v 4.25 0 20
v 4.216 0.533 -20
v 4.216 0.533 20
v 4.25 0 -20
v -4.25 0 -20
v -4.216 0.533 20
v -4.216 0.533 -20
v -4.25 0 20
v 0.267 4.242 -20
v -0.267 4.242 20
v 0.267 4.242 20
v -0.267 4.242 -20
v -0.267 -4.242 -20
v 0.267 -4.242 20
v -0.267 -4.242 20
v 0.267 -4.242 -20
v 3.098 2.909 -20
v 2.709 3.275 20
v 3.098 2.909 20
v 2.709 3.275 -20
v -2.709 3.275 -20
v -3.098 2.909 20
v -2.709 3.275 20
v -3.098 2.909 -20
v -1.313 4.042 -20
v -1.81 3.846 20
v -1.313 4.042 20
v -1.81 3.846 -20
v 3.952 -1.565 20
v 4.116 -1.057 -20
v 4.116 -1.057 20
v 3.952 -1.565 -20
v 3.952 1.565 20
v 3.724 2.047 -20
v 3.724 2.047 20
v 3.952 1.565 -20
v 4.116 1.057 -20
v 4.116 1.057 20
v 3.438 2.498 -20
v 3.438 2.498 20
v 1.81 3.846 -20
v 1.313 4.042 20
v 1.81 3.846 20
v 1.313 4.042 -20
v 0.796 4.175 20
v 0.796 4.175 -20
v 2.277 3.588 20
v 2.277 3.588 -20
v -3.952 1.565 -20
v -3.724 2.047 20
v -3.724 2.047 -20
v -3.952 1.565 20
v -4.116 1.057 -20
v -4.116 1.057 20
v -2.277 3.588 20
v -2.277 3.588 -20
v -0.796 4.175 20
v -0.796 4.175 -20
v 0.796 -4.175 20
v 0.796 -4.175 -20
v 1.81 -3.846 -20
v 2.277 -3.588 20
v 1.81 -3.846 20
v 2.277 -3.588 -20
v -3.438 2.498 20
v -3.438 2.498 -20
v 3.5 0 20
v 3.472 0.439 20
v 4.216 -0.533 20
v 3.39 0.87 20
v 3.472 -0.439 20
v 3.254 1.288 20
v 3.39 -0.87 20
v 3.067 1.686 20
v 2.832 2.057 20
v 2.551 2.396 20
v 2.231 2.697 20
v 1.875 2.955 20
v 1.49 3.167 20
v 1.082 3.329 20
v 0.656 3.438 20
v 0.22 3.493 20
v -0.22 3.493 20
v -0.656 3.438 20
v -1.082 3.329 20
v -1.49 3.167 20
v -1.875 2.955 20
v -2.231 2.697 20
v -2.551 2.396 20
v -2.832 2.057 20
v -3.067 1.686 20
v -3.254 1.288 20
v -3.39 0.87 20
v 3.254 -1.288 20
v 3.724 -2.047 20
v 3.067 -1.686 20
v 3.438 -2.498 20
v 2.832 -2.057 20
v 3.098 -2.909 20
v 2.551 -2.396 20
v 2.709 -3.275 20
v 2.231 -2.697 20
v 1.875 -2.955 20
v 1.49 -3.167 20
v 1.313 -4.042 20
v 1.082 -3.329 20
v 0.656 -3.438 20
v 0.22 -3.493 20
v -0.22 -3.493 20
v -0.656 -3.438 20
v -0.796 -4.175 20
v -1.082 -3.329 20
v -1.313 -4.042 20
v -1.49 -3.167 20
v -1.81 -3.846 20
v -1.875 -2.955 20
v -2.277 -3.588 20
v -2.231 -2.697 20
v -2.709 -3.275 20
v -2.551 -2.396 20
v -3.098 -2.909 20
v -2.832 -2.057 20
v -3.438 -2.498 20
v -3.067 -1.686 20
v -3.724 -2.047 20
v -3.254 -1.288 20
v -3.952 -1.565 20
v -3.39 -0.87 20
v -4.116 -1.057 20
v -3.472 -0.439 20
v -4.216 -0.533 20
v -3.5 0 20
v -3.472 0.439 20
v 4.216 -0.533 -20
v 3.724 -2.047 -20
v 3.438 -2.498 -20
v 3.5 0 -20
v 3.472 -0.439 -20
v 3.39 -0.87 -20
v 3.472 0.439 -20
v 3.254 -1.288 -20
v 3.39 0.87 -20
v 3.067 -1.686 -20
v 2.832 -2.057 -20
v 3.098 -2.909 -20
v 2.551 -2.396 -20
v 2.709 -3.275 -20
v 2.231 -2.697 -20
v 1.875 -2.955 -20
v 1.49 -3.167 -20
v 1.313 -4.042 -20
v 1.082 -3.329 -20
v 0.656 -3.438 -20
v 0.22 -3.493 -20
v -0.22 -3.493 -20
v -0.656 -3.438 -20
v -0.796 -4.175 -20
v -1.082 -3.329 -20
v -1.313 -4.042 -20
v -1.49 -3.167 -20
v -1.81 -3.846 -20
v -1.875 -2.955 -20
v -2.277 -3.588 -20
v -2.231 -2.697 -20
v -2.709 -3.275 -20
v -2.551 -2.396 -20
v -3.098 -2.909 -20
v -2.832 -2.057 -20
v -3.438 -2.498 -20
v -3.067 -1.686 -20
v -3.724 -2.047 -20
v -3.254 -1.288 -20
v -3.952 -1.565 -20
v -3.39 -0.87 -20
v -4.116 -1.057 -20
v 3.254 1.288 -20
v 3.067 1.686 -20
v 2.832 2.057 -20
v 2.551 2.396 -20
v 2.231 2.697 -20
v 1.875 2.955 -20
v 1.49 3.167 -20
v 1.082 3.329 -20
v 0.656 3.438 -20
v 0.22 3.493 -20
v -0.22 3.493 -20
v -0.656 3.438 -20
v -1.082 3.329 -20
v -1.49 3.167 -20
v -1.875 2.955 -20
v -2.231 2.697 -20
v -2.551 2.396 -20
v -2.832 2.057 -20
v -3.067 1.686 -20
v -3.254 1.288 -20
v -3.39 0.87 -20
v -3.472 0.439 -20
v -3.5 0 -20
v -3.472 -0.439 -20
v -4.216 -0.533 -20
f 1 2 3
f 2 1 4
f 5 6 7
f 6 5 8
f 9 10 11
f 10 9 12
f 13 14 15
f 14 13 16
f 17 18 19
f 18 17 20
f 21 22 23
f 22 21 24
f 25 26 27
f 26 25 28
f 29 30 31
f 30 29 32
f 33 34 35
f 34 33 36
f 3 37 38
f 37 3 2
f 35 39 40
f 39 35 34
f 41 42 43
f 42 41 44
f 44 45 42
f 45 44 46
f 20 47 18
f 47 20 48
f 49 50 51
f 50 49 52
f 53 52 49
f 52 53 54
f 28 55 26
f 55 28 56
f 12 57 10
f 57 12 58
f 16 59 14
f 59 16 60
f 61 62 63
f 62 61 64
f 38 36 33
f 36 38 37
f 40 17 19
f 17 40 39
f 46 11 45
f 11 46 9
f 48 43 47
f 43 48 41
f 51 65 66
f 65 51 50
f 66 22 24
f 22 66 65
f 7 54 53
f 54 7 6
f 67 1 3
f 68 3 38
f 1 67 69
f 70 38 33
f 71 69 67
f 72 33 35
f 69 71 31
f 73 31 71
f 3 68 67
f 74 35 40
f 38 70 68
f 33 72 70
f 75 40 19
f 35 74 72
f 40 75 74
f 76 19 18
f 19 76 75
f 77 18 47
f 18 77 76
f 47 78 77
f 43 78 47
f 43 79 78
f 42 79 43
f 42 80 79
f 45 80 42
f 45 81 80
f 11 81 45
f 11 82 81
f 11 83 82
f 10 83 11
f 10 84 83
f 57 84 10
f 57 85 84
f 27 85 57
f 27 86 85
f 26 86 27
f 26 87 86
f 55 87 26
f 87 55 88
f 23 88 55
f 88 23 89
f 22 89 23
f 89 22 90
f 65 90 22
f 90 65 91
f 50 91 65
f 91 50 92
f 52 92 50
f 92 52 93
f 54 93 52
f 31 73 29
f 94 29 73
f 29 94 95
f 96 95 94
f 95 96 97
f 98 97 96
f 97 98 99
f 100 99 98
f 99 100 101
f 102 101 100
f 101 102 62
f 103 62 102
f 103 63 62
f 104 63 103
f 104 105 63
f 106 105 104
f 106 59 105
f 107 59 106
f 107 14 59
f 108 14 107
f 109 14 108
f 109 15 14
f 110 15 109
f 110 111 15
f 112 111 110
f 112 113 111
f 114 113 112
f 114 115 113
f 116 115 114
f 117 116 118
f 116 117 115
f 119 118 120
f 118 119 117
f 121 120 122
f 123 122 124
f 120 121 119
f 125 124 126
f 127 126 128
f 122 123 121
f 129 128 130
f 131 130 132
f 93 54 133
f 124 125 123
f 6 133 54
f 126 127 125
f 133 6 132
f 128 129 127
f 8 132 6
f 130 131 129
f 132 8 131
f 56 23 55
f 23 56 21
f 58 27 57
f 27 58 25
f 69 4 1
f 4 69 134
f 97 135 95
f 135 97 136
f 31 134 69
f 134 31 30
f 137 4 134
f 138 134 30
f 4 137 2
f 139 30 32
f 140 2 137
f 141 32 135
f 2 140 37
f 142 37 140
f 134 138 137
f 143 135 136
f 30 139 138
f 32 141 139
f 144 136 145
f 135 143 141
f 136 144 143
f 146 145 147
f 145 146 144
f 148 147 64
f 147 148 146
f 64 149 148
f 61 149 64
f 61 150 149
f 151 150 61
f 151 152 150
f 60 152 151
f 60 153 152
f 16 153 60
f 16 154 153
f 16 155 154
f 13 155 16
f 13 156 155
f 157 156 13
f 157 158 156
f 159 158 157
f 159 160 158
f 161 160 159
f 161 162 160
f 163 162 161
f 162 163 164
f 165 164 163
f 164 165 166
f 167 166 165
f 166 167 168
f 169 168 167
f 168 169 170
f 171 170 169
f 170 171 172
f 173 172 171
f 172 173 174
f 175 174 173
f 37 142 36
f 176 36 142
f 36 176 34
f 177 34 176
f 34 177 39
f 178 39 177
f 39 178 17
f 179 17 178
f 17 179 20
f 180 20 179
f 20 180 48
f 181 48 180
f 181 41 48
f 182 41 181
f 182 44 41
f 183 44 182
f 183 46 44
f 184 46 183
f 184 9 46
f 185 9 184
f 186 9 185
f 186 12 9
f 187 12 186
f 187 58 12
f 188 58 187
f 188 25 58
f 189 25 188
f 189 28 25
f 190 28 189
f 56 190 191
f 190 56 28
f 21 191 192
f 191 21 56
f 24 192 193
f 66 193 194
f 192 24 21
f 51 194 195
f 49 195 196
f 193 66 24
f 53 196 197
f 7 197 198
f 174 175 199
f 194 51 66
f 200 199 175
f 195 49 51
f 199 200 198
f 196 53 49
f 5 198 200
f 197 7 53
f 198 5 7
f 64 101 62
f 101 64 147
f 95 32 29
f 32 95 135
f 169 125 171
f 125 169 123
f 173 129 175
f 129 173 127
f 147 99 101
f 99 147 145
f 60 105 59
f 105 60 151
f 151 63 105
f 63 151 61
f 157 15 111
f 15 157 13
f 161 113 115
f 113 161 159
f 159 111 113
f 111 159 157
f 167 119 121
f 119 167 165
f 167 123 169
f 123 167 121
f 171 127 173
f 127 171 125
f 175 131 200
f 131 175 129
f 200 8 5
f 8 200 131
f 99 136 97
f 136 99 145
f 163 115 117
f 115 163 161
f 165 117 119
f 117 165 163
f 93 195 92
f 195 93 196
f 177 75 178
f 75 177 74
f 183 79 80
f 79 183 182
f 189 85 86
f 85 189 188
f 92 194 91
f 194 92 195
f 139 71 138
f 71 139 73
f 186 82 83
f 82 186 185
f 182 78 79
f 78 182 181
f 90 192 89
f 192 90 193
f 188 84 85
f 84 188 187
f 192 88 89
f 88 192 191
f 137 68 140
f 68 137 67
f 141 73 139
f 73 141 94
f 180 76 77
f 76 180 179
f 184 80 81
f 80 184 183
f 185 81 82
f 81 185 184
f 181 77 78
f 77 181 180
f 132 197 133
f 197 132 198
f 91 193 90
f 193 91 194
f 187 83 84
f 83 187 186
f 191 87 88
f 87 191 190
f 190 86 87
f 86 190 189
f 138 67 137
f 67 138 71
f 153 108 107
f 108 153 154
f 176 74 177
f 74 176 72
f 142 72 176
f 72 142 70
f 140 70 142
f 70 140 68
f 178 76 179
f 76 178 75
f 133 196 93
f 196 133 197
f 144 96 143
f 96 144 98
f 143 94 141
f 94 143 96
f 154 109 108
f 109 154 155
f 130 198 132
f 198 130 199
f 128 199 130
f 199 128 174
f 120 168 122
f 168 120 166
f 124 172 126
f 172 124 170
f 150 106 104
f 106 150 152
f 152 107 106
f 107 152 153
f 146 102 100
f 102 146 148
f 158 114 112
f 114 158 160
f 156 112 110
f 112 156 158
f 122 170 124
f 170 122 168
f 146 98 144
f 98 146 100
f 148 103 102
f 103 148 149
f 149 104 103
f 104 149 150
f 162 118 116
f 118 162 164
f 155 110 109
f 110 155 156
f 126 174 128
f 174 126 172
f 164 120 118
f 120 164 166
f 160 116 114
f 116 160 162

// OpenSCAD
$fn = 50;


difference() {
	union() {
		translate(v = [0, 0, -20.0000000000]) {
			cylinder(h = 40, r = 4.2500000000);
		}
	}
	union() {
		translate(v = [0, 0, -100.0000000000]) {
			cylinder(h = 200, r = 3.5000000000);
		}
	}
}
